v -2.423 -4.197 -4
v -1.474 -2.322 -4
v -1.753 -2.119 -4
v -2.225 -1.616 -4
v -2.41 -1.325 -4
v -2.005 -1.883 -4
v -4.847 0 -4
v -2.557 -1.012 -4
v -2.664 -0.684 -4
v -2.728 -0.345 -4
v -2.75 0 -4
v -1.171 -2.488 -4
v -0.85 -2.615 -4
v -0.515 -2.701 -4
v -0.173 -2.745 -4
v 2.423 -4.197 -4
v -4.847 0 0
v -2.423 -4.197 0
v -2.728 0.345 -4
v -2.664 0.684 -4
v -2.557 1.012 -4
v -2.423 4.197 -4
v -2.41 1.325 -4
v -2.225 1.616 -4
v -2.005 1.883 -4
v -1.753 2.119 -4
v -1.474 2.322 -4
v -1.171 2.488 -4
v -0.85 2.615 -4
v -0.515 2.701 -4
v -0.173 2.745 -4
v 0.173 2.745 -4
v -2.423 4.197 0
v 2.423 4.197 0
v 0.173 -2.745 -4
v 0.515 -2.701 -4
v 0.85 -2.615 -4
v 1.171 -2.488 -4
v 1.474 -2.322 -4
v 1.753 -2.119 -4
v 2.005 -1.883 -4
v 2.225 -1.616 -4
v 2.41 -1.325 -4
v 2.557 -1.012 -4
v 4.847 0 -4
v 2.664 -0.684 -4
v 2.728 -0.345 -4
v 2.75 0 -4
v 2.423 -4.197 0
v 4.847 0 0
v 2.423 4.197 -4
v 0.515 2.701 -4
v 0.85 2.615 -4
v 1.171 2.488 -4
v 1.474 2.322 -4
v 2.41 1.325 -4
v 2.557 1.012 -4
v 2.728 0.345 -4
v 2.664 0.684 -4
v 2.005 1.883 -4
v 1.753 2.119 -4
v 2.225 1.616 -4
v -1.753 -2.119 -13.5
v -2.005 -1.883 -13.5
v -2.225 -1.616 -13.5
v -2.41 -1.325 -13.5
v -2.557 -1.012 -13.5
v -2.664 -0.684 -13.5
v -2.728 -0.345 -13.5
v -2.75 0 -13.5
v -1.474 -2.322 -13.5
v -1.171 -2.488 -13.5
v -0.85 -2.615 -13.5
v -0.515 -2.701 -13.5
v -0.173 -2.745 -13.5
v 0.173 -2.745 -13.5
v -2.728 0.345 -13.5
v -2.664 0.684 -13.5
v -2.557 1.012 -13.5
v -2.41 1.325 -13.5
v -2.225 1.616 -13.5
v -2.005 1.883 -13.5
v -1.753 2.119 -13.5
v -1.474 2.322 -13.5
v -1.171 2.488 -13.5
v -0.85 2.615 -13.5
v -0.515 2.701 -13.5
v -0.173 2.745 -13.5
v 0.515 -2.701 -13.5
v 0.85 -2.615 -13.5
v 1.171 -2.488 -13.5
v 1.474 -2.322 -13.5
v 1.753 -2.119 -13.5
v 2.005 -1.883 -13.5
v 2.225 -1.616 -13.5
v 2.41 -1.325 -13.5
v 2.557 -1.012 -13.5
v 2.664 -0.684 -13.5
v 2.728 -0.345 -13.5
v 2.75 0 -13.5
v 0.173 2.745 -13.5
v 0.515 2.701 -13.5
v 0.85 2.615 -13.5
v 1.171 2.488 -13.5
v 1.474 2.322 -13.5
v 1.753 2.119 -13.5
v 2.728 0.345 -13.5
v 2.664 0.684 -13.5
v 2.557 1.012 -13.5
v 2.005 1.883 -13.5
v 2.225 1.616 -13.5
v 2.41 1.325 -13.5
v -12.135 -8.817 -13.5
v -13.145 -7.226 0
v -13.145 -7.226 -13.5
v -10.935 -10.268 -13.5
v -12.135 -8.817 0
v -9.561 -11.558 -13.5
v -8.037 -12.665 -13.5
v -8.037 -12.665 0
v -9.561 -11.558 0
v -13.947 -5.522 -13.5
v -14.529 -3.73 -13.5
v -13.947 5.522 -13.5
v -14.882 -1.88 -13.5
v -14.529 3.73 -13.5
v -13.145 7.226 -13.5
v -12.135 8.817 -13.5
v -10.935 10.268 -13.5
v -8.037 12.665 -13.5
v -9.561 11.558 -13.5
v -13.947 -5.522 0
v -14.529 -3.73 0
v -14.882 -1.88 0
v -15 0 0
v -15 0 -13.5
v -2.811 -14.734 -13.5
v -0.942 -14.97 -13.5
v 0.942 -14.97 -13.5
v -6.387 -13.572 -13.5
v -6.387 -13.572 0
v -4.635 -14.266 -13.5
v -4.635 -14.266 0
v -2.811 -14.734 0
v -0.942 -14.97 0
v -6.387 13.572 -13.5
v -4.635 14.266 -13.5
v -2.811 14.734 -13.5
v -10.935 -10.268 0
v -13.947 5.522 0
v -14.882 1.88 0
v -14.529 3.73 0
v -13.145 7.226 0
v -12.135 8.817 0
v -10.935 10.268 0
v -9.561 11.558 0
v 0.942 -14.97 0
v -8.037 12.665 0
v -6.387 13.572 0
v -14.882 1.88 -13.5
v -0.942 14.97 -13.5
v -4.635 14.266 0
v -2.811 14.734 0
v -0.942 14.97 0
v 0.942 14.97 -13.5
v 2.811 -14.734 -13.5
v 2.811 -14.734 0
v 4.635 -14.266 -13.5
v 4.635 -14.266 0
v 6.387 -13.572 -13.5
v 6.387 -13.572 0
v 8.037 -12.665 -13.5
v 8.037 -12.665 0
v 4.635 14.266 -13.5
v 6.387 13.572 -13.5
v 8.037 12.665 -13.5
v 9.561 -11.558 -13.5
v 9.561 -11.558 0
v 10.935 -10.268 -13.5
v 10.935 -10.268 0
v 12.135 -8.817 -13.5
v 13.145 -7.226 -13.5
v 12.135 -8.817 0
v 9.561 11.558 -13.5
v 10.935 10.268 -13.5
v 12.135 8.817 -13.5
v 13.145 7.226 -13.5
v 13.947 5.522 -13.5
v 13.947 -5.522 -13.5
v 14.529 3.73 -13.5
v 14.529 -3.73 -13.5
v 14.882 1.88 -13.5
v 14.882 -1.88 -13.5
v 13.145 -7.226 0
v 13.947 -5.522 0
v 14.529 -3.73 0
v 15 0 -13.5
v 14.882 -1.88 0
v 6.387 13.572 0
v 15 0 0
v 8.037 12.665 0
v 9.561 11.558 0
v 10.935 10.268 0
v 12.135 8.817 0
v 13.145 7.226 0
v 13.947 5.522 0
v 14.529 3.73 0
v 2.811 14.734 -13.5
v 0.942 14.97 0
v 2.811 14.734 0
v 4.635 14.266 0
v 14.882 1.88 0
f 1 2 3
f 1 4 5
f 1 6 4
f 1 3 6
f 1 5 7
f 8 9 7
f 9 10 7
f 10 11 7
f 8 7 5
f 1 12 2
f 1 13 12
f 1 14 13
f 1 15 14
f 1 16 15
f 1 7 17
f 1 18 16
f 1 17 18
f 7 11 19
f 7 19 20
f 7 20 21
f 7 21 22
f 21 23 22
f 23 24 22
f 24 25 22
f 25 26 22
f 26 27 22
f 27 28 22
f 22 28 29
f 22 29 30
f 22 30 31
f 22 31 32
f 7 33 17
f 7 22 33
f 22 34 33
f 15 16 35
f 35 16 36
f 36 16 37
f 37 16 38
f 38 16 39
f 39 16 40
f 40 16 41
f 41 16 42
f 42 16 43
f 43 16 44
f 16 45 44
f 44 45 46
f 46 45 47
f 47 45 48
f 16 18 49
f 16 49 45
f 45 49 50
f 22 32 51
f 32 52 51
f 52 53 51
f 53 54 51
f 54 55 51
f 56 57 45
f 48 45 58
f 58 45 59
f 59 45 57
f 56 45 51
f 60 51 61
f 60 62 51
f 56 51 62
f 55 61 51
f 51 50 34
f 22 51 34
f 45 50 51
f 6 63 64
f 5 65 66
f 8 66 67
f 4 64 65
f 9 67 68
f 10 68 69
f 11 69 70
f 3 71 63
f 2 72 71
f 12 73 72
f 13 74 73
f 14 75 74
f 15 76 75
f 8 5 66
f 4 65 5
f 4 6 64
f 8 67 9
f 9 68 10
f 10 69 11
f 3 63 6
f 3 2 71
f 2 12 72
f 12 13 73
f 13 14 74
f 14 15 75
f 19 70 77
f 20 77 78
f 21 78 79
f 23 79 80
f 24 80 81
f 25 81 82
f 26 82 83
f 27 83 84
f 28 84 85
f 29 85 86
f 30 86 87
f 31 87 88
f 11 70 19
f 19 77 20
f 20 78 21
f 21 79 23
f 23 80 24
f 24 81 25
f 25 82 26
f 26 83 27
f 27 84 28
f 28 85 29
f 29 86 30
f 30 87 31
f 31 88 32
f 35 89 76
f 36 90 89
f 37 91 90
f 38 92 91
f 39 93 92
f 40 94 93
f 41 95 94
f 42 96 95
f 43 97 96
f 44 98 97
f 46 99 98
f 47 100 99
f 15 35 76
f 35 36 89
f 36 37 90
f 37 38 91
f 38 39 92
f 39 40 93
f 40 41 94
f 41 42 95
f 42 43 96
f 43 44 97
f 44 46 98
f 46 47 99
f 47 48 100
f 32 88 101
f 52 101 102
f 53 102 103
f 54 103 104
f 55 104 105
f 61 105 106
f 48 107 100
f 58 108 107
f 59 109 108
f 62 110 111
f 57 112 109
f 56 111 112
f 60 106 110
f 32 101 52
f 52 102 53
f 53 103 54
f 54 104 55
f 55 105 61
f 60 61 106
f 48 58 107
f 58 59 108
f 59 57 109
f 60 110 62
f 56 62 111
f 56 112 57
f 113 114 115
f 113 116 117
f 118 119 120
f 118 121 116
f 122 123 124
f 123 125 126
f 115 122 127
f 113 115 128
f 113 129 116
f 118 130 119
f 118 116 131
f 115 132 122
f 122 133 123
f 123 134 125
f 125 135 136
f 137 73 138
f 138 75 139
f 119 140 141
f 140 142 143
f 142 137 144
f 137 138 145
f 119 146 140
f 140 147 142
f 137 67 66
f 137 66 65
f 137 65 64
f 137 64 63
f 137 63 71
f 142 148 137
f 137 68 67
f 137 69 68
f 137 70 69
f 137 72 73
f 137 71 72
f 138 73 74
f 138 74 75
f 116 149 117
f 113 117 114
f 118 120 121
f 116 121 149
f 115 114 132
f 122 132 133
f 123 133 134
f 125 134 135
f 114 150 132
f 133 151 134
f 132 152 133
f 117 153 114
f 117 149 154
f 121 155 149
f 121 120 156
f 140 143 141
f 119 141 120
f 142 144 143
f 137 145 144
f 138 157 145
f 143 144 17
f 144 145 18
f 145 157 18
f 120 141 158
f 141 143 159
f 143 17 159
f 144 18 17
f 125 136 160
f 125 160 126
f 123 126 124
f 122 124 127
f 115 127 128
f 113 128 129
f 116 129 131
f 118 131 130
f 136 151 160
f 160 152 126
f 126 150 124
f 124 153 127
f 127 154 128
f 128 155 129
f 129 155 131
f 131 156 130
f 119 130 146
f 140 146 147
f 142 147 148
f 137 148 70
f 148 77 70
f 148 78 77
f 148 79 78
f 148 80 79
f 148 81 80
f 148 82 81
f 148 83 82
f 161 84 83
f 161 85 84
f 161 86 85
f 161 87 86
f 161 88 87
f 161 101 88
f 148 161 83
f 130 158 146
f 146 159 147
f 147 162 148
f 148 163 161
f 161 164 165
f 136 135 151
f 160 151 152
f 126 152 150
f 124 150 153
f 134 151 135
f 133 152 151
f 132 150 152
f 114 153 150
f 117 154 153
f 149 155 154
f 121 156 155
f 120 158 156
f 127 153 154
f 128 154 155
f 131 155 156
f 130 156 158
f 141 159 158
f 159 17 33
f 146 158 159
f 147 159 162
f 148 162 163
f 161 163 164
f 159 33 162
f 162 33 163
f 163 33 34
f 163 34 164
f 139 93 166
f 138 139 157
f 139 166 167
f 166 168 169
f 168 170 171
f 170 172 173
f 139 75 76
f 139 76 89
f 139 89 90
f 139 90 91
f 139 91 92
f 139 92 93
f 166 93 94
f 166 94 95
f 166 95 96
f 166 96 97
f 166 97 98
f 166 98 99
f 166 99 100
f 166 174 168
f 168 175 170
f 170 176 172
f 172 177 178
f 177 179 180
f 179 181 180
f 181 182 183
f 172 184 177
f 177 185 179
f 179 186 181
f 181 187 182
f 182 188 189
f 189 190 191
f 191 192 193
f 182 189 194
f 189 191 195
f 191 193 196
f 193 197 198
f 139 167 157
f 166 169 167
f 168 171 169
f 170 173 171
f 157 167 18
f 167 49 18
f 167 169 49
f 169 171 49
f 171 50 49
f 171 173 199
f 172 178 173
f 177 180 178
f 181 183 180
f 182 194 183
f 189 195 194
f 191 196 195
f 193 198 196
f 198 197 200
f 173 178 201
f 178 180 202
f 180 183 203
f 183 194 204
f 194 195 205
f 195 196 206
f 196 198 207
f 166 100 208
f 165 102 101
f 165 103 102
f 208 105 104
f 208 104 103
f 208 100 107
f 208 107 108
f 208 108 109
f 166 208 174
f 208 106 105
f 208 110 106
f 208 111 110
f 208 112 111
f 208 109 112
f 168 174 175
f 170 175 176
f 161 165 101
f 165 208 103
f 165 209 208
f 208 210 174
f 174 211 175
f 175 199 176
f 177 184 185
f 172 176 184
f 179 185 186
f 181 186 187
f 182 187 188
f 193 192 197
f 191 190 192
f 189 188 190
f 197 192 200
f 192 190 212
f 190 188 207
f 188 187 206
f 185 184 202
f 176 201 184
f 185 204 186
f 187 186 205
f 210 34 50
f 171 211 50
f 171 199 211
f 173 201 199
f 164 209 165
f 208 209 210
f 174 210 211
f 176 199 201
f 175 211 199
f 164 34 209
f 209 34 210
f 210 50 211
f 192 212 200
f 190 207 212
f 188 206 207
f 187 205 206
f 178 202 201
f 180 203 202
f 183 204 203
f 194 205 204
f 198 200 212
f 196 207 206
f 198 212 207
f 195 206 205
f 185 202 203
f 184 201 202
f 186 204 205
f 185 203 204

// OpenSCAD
$fn = 50;

difference() {
	union() {
		translate(v = [0, 0, -13.5]) {
			cylinder(h = 13.5, r = 15.0);
		}
	}
	union() {
		translate(v = [0, 0, 0]) {
			rotate(a = [0, 0, 0]) {
				difference() {
					union() {
						translate(v = [0, 0, -4]) {
							linear_extrude(height = 4) {
								polygon(points = [[4.8468, 0.0], [2.4234000000000004, 4.197451927062417], [-2.423399999999999, 4.197451927062417], [-4.8468, 5.935618106107392e-16], [-2.423400000000002, -4.197451927062416], [2.423399999999997, -4.197451927062419]]);
							}
						}
					}
					union();
				}
			}
		}
		#translate(v = [0, 0, -100.0]) {
			cylinder(h = 200, r = 2.75);
		}
	}
}
